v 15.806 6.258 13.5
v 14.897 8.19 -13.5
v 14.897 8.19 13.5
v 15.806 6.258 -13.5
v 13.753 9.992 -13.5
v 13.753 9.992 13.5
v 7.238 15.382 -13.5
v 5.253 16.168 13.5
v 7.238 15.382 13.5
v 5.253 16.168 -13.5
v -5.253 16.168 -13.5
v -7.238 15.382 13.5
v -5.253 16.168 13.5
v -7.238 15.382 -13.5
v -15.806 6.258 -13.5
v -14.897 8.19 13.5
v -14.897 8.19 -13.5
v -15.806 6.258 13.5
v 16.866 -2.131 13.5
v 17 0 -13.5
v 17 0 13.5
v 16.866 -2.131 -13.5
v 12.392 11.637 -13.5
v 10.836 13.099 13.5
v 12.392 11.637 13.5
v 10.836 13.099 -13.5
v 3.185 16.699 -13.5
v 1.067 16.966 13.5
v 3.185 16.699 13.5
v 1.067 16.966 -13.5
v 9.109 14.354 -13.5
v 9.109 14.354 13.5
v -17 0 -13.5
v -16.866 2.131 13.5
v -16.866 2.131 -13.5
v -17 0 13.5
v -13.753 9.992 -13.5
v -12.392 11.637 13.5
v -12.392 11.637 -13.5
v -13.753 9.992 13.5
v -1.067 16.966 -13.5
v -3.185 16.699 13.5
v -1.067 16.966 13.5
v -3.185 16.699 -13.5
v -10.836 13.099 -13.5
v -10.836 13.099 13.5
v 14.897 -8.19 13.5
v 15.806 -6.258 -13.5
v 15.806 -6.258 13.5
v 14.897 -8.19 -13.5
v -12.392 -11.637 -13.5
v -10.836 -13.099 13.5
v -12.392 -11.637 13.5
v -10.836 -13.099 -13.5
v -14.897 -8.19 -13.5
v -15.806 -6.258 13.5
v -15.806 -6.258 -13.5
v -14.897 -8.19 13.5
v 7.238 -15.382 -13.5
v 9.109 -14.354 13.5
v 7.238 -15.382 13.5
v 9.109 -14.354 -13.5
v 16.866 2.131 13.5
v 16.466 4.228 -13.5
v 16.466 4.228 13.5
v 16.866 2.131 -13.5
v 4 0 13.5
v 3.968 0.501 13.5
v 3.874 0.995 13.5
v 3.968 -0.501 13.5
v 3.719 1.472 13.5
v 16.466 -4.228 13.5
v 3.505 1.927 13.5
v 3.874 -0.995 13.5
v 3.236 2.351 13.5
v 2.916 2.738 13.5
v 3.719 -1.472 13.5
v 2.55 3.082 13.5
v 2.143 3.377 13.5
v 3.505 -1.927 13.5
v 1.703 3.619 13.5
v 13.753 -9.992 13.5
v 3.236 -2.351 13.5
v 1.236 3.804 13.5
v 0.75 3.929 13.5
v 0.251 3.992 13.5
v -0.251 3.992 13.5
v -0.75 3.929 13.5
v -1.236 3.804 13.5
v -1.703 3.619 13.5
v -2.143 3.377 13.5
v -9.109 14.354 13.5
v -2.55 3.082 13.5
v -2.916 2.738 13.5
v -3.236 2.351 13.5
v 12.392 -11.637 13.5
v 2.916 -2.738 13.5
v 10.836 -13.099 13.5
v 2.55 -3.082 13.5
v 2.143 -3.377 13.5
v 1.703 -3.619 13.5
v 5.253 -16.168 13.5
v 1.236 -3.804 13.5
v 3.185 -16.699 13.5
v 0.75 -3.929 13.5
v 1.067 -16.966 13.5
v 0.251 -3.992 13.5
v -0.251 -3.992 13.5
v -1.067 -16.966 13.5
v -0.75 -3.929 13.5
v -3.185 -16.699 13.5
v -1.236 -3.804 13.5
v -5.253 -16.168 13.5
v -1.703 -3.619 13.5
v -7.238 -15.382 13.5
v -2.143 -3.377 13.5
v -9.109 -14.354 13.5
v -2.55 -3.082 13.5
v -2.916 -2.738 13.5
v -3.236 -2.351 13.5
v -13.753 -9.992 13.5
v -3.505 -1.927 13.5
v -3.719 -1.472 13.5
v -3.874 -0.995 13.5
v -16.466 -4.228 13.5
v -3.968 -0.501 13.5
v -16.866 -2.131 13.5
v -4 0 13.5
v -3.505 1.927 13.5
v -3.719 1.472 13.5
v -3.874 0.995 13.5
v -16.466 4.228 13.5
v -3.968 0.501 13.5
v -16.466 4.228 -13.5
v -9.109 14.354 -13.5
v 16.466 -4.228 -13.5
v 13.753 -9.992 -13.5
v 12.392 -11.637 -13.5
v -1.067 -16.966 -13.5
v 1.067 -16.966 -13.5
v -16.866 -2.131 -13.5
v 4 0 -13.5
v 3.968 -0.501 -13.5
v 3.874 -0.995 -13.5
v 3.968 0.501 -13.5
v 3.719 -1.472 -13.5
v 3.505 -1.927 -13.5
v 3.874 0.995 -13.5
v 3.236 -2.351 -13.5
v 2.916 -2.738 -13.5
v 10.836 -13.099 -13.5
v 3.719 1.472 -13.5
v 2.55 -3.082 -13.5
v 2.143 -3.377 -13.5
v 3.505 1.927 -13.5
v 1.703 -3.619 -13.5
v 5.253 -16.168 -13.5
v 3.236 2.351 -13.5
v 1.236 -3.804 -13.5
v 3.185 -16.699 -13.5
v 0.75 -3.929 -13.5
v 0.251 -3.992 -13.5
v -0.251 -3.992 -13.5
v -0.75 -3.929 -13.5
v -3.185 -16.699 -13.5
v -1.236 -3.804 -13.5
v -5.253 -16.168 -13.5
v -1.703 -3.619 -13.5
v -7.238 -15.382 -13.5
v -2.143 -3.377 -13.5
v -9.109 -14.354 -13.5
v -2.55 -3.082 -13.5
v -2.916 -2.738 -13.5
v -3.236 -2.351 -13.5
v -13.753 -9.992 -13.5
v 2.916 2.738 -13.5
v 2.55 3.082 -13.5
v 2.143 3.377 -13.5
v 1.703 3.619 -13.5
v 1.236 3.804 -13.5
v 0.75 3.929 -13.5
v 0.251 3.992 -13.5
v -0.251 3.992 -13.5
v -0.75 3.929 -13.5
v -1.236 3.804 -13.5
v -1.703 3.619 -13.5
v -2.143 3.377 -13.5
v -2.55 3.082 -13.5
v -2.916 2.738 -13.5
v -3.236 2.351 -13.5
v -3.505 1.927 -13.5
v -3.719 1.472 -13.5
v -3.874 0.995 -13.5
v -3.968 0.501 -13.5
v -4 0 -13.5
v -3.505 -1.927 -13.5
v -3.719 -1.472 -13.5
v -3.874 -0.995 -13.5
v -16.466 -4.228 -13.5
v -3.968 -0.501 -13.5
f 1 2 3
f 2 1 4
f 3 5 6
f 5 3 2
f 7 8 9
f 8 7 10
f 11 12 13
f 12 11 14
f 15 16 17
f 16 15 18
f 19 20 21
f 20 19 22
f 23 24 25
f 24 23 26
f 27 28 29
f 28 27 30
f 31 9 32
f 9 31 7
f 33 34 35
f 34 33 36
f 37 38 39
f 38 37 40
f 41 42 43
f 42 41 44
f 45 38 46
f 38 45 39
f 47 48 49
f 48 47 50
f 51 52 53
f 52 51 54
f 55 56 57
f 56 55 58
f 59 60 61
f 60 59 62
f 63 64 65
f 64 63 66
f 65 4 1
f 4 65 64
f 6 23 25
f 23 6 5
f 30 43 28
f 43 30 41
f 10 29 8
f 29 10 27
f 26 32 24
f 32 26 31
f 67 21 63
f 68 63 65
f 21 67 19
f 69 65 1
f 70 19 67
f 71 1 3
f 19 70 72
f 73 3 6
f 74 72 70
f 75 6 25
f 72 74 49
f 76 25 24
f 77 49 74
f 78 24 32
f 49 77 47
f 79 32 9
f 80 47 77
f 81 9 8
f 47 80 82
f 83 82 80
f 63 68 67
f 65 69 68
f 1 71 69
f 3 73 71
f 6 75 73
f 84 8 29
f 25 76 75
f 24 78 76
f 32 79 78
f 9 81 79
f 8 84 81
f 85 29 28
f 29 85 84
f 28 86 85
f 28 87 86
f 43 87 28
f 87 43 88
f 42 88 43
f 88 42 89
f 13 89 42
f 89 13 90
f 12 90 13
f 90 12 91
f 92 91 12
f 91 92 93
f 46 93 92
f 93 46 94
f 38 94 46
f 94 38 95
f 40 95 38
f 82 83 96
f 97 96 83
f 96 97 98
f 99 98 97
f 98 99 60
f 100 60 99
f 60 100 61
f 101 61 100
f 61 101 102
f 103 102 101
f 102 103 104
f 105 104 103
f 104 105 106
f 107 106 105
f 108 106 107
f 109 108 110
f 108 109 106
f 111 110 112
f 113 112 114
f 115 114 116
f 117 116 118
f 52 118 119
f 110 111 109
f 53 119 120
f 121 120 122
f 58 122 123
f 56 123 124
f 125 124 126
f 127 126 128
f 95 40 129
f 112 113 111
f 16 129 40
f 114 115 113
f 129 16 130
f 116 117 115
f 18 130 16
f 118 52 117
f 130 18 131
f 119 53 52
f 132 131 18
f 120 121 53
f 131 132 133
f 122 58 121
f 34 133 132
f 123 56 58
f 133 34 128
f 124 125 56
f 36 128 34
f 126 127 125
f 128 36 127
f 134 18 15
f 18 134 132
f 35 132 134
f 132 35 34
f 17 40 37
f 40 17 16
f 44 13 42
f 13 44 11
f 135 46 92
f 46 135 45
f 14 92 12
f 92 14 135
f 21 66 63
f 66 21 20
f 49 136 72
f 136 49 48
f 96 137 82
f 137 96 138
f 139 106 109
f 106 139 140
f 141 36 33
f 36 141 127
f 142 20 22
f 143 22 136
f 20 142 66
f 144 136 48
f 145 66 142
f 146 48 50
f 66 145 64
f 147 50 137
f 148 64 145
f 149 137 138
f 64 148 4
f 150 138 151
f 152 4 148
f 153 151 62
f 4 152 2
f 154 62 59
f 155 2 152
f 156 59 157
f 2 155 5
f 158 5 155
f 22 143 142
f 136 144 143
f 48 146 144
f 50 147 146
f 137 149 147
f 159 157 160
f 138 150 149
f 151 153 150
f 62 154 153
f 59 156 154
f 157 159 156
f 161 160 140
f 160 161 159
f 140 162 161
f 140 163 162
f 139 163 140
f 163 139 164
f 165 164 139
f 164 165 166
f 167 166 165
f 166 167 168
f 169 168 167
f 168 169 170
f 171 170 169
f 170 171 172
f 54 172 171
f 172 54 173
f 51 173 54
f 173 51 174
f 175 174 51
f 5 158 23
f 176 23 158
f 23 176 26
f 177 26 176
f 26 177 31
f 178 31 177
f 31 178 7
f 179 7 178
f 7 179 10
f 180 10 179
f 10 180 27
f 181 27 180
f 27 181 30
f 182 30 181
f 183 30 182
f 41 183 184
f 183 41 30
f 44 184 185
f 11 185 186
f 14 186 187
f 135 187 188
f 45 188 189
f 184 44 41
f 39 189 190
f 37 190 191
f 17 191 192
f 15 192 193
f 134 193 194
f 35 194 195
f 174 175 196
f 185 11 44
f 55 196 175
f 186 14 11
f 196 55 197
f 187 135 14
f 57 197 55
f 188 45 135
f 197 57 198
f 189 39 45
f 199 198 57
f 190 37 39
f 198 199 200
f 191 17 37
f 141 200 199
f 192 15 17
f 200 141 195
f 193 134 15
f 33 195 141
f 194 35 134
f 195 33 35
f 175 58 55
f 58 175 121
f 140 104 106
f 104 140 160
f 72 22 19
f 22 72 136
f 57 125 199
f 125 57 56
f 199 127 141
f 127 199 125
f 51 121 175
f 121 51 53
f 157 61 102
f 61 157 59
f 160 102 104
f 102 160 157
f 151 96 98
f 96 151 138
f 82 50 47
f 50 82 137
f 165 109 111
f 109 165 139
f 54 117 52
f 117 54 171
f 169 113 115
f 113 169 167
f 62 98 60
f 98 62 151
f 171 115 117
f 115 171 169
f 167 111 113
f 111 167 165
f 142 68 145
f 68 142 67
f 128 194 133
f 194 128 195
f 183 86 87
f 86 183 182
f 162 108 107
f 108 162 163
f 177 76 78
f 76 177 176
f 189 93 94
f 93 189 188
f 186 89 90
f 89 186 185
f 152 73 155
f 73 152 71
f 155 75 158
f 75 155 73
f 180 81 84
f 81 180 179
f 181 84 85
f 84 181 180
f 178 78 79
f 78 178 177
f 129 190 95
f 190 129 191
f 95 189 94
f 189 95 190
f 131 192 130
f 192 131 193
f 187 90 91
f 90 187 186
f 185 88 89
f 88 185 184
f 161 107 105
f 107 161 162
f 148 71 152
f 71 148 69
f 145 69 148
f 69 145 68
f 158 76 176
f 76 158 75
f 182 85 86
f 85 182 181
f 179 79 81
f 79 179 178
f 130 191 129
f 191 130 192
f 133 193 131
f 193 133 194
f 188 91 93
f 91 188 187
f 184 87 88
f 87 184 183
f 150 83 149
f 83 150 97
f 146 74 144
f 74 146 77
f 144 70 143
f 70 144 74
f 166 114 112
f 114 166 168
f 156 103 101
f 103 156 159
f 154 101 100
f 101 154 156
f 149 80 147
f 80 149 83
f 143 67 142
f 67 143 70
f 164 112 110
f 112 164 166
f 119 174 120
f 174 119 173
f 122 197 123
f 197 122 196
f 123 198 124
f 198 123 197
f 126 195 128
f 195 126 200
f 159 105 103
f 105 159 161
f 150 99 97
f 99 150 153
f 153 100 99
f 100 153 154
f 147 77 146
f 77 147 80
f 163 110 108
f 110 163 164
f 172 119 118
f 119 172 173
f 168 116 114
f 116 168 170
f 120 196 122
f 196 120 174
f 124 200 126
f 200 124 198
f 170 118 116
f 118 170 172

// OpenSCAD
$fn = 50;


difference() {
	union() {
		translate(v = [0, 0, -13.5000000000]) {
			cylinder(h = 27, r = 17.0000000000);
		}
	}
	union() {
		translate(v = [0, 0, -100.0000000000]) {
			cylinder(h = 200, r = 4);
		}
	}
}
